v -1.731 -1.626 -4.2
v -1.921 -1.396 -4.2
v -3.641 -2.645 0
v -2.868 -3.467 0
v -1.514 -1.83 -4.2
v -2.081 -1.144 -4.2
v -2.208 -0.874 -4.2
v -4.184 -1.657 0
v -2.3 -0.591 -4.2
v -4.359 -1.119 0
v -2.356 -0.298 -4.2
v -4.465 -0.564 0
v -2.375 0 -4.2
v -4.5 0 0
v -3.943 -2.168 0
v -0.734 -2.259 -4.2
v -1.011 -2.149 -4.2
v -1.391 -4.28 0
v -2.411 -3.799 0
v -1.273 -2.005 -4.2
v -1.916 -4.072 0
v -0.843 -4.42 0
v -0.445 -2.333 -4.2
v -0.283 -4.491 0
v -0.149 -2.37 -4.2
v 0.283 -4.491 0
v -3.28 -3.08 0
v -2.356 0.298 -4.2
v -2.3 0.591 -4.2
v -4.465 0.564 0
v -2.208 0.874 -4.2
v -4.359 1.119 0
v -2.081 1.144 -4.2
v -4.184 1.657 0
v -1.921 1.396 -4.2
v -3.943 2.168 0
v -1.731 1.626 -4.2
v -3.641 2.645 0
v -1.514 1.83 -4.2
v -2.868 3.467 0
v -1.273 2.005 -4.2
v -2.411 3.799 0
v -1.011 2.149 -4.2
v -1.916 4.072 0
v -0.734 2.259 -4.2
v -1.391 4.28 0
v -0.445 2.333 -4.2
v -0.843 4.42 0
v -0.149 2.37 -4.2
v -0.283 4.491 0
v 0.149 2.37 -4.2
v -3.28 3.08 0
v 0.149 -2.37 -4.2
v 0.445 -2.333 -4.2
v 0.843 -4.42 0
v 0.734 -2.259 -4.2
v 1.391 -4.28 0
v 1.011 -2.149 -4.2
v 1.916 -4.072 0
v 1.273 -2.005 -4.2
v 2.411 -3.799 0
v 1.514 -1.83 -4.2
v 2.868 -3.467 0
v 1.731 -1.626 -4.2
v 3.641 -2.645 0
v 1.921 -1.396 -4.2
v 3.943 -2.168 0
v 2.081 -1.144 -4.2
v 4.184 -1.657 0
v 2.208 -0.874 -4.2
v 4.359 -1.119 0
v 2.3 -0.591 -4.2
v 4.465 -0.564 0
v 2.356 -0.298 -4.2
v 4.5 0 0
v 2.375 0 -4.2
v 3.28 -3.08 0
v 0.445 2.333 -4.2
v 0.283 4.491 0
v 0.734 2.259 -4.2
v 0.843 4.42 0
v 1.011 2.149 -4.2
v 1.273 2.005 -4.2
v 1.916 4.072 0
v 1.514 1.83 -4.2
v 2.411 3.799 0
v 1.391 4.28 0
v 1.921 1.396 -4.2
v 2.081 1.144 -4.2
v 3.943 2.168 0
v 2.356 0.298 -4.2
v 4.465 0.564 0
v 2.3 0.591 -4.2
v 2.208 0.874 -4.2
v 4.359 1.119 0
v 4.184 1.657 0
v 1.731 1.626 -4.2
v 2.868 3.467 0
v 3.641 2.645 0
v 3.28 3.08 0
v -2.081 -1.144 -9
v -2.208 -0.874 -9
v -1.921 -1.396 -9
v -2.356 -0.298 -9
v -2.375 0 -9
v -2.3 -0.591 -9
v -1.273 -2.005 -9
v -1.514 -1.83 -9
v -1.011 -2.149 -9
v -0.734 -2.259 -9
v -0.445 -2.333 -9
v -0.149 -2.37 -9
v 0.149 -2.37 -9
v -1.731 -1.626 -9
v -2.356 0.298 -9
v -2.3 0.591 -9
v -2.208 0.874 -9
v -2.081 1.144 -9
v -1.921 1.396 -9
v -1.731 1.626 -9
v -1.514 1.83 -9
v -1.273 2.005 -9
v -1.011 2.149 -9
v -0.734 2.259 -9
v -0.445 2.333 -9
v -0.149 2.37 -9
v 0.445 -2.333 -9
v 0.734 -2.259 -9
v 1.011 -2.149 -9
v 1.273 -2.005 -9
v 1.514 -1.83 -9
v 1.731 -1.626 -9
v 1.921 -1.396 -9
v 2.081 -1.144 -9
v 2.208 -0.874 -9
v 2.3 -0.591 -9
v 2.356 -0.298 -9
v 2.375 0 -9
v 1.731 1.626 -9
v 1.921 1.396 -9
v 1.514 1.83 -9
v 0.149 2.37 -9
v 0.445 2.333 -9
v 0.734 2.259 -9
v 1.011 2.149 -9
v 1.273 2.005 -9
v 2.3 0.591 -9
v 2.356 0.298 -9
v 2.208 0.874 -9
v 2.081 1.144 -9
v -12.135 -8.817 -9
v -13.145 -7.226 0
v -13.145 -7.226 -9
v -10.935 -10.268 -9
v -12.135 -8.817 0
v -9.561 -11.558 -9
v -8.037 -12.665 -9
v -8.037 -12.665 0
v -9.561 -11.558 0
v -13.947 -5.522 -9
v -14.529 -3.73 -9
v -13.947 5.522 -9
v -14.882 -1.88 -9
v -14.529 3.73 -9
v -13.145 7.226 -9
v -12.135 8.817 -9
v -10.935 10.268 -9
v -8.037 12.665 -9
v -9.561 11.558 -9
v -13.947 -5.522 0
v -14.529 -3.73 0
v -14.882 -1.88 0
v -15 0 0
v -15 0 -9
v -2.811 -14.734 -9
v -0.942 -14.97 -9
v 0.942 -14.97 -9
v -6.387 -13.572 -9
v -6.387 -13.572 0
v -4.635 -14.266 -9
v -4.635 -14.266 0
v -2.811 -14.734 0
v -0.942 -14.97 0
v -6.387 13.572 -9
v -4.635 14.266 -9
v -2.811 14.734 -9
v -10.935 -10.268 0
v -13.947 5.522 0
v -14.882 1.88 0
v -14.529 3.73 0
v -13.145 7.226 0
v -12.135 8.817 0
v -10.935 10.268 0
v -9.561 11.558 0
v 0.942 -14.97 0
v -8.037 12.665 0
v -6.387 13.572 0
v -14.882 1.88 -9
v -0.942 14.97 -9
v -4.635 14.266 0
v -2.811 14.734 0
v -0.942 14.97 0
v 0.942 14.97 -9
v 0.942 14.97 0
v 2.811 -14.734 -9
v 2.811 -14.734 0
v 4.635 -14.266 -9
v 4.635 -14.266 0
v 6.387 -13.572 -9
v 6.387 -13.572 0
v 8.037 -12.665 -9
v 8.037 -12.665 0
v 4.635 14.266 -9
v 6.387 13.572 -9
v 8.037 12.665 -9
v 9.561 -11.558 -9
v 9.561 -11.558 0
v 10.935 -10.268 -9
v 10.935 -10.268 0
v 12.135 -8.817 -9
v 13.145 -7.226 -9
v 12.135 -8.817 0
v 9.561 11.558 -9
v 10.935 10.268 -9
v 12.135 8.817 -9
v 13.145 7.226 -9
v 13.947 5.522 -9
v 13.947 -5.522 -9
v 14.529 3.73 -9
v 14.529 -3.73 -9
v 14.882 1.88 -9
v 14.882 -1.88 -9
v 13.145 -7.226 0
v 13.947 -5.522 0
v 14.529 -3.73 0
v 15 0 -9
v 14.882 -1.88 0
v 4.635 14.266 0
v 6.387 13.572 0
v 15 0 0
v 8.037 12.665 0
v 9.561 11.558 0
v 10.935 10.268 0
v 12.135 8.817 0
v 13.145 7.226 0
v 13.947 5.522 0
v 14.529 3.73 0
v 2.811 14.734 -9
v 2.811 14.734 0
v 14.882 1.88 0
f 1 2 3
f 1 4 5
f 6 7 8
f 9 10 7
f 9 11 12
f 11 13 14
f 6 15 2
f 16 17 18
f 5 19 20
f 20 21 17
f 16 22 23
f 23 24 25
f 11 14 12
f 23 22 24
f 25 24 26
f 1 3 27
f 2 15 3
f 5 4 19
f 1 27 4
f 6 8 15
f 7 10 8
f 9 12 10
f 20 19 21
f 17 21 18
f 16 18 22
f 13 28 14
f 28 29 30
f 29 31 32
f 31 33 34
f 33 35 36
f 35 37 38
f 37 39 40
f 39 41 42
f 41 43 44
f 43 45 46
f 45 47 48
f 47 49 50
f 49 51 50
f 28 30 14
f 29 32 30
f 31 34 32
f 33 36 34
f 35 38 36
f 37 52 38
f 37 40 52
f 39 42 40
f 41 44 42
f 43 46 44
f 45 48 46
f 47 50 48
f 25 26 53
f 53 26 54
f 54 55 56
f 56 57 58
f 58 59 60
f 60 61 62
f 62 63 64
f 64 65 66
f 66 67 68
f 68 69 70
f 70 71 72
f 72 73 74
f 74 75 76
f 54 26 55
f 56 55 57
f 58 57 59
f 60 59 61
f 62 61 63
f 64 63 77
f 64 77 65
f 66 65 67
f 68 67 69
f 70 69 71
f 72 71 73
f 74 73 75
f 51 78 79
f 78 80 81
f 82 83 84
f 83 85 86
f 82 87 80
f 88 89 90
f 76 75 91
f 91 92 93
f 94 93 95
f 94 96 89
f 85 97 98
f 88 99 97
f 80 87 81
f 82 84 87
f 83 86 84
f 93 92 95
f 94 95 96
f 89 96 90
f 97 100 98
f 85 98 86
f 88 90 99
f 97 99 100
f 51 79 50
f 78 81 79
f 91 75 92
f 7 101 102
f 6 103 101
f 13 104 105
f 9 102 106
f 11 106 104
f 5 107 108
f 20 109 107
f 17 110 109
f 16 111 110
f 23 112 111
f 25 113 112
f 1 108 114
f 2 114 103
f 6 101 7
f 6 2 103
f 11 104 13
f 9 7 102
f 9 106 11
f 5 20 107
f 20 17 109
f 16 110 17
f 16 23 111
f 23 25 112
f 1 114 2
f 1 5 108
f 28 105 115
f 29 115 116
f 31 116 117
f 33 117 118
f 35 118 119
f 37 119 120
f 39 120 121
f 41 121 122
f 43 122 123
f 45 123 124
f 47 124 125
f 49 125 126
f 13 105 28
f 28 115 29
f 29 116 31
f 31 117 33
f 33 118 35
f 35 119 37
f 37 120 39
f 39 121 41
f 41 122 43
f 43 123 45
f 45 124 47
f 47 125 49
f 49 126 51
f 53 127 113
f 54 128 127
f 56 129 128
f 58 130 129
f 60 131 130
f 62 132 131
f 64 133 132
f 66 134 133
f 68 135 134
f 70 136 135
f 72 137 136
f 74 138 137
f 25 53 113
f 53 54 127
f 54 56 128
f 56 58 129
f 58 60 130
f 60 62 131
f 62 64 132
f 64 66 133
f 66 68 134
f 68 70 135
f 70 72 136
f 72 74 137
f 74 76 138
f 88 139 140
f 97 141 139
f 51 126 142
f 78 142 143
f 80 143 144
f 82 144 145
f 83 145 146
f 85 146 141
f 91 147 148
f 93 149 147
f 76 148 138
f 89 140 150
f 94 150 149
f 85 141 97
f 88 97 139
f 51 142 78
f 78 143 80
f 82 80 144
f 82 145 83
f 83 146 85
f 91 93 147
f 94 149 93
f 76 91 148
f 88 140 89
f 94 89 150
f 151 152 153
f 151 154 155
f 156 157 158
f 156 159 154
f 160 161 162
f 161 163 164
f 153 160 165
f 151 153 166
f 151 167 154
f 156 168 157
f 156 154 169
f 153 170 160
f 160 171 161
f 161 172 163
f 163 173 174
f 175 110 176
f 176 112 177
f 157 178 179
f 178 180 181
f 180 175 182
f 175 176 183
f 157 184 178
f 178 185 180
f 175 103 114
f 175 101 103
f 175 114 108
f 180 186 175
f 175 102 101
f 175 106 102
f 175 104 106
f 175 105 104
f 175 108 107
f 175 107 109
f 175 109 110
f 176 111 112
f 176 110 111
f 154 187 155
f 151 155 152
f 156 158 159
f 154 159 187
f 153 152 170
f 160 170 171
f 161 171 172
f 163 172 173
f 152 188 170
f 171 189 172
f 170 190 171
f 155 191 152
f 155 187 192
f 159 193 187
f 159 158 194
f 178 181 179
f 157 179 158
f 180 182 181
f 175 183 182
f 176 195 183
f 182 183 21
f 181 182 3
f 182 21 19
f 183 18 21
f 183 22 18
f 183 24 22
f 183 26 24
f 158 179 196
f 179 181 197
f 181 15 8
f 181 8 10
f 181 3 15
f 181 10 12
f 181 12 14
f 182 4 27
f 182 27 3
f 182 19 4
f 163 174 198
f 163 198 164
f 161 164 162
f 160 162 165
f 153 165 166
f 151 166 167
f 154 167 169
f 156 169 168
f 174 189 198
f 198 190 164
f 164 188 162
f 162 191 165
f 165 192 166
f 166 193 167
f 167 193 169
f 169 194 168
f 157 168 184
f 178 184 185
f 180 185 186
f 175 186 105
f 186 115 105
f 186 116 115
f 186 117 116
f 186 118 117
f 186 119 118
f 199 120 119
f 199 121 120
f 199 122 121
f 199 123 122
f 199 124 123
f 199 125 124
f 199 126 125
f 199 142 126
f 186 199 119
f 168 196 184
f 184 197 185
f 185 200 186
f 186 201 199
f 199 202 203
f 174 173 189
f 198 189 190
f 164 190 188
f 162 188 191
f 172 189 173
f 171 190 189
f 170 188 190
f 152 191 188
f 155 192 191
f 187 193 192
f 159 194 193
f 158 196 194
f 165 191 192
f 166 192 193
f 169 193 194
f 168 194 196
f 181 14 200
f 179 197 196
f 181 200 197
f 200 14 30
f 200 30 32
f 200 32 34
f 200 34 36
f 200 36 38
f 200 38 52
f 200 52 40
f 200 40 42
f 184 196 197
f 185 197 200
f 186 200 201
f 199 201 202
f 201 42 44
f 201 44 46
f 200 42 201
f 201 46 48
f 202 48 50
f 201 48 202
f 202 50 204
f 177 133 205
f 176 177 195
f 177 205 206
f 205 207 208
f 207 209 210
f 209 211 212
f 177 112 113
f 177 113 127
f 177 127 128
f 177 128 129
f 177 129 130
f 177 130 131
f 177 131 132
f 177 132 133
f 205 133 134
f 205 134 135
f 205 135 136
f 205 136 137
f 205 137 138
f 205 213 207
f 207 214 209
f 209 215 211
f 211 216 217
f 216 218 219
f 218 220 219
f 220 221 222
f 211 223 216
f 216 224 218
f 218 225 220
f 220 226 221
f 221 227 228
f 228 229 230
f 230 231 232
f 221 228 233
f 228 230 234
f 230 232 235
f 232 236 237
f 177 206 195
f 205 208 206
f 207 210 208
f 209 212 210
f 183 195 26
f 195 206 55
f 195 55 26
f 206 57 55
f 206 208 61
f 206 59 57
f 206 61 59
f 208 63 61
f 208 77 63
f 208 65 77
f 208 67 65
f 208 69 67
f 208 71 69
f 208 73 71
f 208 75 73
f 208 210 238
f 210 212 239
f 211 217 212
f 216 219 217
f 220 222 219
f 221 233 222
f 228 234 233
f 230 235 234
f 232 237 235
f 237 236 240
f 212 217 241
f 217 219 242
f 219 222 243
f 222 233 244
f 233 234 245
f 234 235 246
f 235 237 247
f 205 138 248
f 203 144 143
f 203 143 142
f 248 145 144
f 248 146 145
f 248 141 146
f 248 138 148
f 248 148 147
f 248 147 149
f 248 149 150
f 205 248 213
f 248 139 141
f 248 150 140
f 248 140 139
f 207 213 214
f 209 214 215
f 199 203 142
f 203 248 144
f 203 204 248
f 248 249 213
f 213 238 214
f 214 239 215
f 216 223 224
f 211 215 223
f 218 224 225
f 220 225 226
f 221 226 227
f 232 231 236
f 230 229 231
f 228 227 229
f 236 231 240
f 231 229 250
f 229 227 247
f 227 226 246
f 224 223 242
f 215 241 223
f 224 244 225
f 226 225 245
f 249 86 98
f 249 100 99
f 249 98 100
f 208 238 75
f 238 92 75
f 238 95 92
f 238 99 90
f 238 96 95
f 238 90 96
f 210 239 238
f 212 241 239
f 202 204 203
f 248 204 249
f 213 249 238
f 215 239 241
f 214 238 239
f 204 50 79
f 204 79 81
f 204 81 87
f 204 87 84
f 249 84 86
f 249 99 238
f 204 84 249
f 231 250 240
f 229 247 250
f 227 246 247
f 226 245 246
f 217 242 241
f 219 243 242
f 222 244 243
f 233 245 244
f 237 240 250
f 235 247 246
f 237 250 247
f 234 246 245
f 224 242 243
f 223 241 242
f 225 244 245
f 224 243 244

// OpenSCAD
$fn = 50;

difference() {
	union() {
		translate(v = [0, 0, -9.0]) {
			cylinder(h = 9, r = 15.0);
		}
	}
	union() {
		translate(v = [0, 0, 0]) {
			rotate(a = [0, 0, 0]) {
				difference() {
					union() {
						translate(v = [0, 0, -12.0]) {
							cylinder(h = 12, r = 2.25);
						}
						translate(v = [0, 0, -4.2]) {
							cylinder(h = 4.2, r1 = 2.375, r2 = 4.5);
						}
						translate(v = [0, 0, -12.0]) {
							cylinder(h = 12, r = 2.375);
						}
						translate(v = [0, 0, -12.0]) {
							cylinder(h = 12, r = 2.25);
						}
					}
					union();
				}
			}
		}
	}
}
